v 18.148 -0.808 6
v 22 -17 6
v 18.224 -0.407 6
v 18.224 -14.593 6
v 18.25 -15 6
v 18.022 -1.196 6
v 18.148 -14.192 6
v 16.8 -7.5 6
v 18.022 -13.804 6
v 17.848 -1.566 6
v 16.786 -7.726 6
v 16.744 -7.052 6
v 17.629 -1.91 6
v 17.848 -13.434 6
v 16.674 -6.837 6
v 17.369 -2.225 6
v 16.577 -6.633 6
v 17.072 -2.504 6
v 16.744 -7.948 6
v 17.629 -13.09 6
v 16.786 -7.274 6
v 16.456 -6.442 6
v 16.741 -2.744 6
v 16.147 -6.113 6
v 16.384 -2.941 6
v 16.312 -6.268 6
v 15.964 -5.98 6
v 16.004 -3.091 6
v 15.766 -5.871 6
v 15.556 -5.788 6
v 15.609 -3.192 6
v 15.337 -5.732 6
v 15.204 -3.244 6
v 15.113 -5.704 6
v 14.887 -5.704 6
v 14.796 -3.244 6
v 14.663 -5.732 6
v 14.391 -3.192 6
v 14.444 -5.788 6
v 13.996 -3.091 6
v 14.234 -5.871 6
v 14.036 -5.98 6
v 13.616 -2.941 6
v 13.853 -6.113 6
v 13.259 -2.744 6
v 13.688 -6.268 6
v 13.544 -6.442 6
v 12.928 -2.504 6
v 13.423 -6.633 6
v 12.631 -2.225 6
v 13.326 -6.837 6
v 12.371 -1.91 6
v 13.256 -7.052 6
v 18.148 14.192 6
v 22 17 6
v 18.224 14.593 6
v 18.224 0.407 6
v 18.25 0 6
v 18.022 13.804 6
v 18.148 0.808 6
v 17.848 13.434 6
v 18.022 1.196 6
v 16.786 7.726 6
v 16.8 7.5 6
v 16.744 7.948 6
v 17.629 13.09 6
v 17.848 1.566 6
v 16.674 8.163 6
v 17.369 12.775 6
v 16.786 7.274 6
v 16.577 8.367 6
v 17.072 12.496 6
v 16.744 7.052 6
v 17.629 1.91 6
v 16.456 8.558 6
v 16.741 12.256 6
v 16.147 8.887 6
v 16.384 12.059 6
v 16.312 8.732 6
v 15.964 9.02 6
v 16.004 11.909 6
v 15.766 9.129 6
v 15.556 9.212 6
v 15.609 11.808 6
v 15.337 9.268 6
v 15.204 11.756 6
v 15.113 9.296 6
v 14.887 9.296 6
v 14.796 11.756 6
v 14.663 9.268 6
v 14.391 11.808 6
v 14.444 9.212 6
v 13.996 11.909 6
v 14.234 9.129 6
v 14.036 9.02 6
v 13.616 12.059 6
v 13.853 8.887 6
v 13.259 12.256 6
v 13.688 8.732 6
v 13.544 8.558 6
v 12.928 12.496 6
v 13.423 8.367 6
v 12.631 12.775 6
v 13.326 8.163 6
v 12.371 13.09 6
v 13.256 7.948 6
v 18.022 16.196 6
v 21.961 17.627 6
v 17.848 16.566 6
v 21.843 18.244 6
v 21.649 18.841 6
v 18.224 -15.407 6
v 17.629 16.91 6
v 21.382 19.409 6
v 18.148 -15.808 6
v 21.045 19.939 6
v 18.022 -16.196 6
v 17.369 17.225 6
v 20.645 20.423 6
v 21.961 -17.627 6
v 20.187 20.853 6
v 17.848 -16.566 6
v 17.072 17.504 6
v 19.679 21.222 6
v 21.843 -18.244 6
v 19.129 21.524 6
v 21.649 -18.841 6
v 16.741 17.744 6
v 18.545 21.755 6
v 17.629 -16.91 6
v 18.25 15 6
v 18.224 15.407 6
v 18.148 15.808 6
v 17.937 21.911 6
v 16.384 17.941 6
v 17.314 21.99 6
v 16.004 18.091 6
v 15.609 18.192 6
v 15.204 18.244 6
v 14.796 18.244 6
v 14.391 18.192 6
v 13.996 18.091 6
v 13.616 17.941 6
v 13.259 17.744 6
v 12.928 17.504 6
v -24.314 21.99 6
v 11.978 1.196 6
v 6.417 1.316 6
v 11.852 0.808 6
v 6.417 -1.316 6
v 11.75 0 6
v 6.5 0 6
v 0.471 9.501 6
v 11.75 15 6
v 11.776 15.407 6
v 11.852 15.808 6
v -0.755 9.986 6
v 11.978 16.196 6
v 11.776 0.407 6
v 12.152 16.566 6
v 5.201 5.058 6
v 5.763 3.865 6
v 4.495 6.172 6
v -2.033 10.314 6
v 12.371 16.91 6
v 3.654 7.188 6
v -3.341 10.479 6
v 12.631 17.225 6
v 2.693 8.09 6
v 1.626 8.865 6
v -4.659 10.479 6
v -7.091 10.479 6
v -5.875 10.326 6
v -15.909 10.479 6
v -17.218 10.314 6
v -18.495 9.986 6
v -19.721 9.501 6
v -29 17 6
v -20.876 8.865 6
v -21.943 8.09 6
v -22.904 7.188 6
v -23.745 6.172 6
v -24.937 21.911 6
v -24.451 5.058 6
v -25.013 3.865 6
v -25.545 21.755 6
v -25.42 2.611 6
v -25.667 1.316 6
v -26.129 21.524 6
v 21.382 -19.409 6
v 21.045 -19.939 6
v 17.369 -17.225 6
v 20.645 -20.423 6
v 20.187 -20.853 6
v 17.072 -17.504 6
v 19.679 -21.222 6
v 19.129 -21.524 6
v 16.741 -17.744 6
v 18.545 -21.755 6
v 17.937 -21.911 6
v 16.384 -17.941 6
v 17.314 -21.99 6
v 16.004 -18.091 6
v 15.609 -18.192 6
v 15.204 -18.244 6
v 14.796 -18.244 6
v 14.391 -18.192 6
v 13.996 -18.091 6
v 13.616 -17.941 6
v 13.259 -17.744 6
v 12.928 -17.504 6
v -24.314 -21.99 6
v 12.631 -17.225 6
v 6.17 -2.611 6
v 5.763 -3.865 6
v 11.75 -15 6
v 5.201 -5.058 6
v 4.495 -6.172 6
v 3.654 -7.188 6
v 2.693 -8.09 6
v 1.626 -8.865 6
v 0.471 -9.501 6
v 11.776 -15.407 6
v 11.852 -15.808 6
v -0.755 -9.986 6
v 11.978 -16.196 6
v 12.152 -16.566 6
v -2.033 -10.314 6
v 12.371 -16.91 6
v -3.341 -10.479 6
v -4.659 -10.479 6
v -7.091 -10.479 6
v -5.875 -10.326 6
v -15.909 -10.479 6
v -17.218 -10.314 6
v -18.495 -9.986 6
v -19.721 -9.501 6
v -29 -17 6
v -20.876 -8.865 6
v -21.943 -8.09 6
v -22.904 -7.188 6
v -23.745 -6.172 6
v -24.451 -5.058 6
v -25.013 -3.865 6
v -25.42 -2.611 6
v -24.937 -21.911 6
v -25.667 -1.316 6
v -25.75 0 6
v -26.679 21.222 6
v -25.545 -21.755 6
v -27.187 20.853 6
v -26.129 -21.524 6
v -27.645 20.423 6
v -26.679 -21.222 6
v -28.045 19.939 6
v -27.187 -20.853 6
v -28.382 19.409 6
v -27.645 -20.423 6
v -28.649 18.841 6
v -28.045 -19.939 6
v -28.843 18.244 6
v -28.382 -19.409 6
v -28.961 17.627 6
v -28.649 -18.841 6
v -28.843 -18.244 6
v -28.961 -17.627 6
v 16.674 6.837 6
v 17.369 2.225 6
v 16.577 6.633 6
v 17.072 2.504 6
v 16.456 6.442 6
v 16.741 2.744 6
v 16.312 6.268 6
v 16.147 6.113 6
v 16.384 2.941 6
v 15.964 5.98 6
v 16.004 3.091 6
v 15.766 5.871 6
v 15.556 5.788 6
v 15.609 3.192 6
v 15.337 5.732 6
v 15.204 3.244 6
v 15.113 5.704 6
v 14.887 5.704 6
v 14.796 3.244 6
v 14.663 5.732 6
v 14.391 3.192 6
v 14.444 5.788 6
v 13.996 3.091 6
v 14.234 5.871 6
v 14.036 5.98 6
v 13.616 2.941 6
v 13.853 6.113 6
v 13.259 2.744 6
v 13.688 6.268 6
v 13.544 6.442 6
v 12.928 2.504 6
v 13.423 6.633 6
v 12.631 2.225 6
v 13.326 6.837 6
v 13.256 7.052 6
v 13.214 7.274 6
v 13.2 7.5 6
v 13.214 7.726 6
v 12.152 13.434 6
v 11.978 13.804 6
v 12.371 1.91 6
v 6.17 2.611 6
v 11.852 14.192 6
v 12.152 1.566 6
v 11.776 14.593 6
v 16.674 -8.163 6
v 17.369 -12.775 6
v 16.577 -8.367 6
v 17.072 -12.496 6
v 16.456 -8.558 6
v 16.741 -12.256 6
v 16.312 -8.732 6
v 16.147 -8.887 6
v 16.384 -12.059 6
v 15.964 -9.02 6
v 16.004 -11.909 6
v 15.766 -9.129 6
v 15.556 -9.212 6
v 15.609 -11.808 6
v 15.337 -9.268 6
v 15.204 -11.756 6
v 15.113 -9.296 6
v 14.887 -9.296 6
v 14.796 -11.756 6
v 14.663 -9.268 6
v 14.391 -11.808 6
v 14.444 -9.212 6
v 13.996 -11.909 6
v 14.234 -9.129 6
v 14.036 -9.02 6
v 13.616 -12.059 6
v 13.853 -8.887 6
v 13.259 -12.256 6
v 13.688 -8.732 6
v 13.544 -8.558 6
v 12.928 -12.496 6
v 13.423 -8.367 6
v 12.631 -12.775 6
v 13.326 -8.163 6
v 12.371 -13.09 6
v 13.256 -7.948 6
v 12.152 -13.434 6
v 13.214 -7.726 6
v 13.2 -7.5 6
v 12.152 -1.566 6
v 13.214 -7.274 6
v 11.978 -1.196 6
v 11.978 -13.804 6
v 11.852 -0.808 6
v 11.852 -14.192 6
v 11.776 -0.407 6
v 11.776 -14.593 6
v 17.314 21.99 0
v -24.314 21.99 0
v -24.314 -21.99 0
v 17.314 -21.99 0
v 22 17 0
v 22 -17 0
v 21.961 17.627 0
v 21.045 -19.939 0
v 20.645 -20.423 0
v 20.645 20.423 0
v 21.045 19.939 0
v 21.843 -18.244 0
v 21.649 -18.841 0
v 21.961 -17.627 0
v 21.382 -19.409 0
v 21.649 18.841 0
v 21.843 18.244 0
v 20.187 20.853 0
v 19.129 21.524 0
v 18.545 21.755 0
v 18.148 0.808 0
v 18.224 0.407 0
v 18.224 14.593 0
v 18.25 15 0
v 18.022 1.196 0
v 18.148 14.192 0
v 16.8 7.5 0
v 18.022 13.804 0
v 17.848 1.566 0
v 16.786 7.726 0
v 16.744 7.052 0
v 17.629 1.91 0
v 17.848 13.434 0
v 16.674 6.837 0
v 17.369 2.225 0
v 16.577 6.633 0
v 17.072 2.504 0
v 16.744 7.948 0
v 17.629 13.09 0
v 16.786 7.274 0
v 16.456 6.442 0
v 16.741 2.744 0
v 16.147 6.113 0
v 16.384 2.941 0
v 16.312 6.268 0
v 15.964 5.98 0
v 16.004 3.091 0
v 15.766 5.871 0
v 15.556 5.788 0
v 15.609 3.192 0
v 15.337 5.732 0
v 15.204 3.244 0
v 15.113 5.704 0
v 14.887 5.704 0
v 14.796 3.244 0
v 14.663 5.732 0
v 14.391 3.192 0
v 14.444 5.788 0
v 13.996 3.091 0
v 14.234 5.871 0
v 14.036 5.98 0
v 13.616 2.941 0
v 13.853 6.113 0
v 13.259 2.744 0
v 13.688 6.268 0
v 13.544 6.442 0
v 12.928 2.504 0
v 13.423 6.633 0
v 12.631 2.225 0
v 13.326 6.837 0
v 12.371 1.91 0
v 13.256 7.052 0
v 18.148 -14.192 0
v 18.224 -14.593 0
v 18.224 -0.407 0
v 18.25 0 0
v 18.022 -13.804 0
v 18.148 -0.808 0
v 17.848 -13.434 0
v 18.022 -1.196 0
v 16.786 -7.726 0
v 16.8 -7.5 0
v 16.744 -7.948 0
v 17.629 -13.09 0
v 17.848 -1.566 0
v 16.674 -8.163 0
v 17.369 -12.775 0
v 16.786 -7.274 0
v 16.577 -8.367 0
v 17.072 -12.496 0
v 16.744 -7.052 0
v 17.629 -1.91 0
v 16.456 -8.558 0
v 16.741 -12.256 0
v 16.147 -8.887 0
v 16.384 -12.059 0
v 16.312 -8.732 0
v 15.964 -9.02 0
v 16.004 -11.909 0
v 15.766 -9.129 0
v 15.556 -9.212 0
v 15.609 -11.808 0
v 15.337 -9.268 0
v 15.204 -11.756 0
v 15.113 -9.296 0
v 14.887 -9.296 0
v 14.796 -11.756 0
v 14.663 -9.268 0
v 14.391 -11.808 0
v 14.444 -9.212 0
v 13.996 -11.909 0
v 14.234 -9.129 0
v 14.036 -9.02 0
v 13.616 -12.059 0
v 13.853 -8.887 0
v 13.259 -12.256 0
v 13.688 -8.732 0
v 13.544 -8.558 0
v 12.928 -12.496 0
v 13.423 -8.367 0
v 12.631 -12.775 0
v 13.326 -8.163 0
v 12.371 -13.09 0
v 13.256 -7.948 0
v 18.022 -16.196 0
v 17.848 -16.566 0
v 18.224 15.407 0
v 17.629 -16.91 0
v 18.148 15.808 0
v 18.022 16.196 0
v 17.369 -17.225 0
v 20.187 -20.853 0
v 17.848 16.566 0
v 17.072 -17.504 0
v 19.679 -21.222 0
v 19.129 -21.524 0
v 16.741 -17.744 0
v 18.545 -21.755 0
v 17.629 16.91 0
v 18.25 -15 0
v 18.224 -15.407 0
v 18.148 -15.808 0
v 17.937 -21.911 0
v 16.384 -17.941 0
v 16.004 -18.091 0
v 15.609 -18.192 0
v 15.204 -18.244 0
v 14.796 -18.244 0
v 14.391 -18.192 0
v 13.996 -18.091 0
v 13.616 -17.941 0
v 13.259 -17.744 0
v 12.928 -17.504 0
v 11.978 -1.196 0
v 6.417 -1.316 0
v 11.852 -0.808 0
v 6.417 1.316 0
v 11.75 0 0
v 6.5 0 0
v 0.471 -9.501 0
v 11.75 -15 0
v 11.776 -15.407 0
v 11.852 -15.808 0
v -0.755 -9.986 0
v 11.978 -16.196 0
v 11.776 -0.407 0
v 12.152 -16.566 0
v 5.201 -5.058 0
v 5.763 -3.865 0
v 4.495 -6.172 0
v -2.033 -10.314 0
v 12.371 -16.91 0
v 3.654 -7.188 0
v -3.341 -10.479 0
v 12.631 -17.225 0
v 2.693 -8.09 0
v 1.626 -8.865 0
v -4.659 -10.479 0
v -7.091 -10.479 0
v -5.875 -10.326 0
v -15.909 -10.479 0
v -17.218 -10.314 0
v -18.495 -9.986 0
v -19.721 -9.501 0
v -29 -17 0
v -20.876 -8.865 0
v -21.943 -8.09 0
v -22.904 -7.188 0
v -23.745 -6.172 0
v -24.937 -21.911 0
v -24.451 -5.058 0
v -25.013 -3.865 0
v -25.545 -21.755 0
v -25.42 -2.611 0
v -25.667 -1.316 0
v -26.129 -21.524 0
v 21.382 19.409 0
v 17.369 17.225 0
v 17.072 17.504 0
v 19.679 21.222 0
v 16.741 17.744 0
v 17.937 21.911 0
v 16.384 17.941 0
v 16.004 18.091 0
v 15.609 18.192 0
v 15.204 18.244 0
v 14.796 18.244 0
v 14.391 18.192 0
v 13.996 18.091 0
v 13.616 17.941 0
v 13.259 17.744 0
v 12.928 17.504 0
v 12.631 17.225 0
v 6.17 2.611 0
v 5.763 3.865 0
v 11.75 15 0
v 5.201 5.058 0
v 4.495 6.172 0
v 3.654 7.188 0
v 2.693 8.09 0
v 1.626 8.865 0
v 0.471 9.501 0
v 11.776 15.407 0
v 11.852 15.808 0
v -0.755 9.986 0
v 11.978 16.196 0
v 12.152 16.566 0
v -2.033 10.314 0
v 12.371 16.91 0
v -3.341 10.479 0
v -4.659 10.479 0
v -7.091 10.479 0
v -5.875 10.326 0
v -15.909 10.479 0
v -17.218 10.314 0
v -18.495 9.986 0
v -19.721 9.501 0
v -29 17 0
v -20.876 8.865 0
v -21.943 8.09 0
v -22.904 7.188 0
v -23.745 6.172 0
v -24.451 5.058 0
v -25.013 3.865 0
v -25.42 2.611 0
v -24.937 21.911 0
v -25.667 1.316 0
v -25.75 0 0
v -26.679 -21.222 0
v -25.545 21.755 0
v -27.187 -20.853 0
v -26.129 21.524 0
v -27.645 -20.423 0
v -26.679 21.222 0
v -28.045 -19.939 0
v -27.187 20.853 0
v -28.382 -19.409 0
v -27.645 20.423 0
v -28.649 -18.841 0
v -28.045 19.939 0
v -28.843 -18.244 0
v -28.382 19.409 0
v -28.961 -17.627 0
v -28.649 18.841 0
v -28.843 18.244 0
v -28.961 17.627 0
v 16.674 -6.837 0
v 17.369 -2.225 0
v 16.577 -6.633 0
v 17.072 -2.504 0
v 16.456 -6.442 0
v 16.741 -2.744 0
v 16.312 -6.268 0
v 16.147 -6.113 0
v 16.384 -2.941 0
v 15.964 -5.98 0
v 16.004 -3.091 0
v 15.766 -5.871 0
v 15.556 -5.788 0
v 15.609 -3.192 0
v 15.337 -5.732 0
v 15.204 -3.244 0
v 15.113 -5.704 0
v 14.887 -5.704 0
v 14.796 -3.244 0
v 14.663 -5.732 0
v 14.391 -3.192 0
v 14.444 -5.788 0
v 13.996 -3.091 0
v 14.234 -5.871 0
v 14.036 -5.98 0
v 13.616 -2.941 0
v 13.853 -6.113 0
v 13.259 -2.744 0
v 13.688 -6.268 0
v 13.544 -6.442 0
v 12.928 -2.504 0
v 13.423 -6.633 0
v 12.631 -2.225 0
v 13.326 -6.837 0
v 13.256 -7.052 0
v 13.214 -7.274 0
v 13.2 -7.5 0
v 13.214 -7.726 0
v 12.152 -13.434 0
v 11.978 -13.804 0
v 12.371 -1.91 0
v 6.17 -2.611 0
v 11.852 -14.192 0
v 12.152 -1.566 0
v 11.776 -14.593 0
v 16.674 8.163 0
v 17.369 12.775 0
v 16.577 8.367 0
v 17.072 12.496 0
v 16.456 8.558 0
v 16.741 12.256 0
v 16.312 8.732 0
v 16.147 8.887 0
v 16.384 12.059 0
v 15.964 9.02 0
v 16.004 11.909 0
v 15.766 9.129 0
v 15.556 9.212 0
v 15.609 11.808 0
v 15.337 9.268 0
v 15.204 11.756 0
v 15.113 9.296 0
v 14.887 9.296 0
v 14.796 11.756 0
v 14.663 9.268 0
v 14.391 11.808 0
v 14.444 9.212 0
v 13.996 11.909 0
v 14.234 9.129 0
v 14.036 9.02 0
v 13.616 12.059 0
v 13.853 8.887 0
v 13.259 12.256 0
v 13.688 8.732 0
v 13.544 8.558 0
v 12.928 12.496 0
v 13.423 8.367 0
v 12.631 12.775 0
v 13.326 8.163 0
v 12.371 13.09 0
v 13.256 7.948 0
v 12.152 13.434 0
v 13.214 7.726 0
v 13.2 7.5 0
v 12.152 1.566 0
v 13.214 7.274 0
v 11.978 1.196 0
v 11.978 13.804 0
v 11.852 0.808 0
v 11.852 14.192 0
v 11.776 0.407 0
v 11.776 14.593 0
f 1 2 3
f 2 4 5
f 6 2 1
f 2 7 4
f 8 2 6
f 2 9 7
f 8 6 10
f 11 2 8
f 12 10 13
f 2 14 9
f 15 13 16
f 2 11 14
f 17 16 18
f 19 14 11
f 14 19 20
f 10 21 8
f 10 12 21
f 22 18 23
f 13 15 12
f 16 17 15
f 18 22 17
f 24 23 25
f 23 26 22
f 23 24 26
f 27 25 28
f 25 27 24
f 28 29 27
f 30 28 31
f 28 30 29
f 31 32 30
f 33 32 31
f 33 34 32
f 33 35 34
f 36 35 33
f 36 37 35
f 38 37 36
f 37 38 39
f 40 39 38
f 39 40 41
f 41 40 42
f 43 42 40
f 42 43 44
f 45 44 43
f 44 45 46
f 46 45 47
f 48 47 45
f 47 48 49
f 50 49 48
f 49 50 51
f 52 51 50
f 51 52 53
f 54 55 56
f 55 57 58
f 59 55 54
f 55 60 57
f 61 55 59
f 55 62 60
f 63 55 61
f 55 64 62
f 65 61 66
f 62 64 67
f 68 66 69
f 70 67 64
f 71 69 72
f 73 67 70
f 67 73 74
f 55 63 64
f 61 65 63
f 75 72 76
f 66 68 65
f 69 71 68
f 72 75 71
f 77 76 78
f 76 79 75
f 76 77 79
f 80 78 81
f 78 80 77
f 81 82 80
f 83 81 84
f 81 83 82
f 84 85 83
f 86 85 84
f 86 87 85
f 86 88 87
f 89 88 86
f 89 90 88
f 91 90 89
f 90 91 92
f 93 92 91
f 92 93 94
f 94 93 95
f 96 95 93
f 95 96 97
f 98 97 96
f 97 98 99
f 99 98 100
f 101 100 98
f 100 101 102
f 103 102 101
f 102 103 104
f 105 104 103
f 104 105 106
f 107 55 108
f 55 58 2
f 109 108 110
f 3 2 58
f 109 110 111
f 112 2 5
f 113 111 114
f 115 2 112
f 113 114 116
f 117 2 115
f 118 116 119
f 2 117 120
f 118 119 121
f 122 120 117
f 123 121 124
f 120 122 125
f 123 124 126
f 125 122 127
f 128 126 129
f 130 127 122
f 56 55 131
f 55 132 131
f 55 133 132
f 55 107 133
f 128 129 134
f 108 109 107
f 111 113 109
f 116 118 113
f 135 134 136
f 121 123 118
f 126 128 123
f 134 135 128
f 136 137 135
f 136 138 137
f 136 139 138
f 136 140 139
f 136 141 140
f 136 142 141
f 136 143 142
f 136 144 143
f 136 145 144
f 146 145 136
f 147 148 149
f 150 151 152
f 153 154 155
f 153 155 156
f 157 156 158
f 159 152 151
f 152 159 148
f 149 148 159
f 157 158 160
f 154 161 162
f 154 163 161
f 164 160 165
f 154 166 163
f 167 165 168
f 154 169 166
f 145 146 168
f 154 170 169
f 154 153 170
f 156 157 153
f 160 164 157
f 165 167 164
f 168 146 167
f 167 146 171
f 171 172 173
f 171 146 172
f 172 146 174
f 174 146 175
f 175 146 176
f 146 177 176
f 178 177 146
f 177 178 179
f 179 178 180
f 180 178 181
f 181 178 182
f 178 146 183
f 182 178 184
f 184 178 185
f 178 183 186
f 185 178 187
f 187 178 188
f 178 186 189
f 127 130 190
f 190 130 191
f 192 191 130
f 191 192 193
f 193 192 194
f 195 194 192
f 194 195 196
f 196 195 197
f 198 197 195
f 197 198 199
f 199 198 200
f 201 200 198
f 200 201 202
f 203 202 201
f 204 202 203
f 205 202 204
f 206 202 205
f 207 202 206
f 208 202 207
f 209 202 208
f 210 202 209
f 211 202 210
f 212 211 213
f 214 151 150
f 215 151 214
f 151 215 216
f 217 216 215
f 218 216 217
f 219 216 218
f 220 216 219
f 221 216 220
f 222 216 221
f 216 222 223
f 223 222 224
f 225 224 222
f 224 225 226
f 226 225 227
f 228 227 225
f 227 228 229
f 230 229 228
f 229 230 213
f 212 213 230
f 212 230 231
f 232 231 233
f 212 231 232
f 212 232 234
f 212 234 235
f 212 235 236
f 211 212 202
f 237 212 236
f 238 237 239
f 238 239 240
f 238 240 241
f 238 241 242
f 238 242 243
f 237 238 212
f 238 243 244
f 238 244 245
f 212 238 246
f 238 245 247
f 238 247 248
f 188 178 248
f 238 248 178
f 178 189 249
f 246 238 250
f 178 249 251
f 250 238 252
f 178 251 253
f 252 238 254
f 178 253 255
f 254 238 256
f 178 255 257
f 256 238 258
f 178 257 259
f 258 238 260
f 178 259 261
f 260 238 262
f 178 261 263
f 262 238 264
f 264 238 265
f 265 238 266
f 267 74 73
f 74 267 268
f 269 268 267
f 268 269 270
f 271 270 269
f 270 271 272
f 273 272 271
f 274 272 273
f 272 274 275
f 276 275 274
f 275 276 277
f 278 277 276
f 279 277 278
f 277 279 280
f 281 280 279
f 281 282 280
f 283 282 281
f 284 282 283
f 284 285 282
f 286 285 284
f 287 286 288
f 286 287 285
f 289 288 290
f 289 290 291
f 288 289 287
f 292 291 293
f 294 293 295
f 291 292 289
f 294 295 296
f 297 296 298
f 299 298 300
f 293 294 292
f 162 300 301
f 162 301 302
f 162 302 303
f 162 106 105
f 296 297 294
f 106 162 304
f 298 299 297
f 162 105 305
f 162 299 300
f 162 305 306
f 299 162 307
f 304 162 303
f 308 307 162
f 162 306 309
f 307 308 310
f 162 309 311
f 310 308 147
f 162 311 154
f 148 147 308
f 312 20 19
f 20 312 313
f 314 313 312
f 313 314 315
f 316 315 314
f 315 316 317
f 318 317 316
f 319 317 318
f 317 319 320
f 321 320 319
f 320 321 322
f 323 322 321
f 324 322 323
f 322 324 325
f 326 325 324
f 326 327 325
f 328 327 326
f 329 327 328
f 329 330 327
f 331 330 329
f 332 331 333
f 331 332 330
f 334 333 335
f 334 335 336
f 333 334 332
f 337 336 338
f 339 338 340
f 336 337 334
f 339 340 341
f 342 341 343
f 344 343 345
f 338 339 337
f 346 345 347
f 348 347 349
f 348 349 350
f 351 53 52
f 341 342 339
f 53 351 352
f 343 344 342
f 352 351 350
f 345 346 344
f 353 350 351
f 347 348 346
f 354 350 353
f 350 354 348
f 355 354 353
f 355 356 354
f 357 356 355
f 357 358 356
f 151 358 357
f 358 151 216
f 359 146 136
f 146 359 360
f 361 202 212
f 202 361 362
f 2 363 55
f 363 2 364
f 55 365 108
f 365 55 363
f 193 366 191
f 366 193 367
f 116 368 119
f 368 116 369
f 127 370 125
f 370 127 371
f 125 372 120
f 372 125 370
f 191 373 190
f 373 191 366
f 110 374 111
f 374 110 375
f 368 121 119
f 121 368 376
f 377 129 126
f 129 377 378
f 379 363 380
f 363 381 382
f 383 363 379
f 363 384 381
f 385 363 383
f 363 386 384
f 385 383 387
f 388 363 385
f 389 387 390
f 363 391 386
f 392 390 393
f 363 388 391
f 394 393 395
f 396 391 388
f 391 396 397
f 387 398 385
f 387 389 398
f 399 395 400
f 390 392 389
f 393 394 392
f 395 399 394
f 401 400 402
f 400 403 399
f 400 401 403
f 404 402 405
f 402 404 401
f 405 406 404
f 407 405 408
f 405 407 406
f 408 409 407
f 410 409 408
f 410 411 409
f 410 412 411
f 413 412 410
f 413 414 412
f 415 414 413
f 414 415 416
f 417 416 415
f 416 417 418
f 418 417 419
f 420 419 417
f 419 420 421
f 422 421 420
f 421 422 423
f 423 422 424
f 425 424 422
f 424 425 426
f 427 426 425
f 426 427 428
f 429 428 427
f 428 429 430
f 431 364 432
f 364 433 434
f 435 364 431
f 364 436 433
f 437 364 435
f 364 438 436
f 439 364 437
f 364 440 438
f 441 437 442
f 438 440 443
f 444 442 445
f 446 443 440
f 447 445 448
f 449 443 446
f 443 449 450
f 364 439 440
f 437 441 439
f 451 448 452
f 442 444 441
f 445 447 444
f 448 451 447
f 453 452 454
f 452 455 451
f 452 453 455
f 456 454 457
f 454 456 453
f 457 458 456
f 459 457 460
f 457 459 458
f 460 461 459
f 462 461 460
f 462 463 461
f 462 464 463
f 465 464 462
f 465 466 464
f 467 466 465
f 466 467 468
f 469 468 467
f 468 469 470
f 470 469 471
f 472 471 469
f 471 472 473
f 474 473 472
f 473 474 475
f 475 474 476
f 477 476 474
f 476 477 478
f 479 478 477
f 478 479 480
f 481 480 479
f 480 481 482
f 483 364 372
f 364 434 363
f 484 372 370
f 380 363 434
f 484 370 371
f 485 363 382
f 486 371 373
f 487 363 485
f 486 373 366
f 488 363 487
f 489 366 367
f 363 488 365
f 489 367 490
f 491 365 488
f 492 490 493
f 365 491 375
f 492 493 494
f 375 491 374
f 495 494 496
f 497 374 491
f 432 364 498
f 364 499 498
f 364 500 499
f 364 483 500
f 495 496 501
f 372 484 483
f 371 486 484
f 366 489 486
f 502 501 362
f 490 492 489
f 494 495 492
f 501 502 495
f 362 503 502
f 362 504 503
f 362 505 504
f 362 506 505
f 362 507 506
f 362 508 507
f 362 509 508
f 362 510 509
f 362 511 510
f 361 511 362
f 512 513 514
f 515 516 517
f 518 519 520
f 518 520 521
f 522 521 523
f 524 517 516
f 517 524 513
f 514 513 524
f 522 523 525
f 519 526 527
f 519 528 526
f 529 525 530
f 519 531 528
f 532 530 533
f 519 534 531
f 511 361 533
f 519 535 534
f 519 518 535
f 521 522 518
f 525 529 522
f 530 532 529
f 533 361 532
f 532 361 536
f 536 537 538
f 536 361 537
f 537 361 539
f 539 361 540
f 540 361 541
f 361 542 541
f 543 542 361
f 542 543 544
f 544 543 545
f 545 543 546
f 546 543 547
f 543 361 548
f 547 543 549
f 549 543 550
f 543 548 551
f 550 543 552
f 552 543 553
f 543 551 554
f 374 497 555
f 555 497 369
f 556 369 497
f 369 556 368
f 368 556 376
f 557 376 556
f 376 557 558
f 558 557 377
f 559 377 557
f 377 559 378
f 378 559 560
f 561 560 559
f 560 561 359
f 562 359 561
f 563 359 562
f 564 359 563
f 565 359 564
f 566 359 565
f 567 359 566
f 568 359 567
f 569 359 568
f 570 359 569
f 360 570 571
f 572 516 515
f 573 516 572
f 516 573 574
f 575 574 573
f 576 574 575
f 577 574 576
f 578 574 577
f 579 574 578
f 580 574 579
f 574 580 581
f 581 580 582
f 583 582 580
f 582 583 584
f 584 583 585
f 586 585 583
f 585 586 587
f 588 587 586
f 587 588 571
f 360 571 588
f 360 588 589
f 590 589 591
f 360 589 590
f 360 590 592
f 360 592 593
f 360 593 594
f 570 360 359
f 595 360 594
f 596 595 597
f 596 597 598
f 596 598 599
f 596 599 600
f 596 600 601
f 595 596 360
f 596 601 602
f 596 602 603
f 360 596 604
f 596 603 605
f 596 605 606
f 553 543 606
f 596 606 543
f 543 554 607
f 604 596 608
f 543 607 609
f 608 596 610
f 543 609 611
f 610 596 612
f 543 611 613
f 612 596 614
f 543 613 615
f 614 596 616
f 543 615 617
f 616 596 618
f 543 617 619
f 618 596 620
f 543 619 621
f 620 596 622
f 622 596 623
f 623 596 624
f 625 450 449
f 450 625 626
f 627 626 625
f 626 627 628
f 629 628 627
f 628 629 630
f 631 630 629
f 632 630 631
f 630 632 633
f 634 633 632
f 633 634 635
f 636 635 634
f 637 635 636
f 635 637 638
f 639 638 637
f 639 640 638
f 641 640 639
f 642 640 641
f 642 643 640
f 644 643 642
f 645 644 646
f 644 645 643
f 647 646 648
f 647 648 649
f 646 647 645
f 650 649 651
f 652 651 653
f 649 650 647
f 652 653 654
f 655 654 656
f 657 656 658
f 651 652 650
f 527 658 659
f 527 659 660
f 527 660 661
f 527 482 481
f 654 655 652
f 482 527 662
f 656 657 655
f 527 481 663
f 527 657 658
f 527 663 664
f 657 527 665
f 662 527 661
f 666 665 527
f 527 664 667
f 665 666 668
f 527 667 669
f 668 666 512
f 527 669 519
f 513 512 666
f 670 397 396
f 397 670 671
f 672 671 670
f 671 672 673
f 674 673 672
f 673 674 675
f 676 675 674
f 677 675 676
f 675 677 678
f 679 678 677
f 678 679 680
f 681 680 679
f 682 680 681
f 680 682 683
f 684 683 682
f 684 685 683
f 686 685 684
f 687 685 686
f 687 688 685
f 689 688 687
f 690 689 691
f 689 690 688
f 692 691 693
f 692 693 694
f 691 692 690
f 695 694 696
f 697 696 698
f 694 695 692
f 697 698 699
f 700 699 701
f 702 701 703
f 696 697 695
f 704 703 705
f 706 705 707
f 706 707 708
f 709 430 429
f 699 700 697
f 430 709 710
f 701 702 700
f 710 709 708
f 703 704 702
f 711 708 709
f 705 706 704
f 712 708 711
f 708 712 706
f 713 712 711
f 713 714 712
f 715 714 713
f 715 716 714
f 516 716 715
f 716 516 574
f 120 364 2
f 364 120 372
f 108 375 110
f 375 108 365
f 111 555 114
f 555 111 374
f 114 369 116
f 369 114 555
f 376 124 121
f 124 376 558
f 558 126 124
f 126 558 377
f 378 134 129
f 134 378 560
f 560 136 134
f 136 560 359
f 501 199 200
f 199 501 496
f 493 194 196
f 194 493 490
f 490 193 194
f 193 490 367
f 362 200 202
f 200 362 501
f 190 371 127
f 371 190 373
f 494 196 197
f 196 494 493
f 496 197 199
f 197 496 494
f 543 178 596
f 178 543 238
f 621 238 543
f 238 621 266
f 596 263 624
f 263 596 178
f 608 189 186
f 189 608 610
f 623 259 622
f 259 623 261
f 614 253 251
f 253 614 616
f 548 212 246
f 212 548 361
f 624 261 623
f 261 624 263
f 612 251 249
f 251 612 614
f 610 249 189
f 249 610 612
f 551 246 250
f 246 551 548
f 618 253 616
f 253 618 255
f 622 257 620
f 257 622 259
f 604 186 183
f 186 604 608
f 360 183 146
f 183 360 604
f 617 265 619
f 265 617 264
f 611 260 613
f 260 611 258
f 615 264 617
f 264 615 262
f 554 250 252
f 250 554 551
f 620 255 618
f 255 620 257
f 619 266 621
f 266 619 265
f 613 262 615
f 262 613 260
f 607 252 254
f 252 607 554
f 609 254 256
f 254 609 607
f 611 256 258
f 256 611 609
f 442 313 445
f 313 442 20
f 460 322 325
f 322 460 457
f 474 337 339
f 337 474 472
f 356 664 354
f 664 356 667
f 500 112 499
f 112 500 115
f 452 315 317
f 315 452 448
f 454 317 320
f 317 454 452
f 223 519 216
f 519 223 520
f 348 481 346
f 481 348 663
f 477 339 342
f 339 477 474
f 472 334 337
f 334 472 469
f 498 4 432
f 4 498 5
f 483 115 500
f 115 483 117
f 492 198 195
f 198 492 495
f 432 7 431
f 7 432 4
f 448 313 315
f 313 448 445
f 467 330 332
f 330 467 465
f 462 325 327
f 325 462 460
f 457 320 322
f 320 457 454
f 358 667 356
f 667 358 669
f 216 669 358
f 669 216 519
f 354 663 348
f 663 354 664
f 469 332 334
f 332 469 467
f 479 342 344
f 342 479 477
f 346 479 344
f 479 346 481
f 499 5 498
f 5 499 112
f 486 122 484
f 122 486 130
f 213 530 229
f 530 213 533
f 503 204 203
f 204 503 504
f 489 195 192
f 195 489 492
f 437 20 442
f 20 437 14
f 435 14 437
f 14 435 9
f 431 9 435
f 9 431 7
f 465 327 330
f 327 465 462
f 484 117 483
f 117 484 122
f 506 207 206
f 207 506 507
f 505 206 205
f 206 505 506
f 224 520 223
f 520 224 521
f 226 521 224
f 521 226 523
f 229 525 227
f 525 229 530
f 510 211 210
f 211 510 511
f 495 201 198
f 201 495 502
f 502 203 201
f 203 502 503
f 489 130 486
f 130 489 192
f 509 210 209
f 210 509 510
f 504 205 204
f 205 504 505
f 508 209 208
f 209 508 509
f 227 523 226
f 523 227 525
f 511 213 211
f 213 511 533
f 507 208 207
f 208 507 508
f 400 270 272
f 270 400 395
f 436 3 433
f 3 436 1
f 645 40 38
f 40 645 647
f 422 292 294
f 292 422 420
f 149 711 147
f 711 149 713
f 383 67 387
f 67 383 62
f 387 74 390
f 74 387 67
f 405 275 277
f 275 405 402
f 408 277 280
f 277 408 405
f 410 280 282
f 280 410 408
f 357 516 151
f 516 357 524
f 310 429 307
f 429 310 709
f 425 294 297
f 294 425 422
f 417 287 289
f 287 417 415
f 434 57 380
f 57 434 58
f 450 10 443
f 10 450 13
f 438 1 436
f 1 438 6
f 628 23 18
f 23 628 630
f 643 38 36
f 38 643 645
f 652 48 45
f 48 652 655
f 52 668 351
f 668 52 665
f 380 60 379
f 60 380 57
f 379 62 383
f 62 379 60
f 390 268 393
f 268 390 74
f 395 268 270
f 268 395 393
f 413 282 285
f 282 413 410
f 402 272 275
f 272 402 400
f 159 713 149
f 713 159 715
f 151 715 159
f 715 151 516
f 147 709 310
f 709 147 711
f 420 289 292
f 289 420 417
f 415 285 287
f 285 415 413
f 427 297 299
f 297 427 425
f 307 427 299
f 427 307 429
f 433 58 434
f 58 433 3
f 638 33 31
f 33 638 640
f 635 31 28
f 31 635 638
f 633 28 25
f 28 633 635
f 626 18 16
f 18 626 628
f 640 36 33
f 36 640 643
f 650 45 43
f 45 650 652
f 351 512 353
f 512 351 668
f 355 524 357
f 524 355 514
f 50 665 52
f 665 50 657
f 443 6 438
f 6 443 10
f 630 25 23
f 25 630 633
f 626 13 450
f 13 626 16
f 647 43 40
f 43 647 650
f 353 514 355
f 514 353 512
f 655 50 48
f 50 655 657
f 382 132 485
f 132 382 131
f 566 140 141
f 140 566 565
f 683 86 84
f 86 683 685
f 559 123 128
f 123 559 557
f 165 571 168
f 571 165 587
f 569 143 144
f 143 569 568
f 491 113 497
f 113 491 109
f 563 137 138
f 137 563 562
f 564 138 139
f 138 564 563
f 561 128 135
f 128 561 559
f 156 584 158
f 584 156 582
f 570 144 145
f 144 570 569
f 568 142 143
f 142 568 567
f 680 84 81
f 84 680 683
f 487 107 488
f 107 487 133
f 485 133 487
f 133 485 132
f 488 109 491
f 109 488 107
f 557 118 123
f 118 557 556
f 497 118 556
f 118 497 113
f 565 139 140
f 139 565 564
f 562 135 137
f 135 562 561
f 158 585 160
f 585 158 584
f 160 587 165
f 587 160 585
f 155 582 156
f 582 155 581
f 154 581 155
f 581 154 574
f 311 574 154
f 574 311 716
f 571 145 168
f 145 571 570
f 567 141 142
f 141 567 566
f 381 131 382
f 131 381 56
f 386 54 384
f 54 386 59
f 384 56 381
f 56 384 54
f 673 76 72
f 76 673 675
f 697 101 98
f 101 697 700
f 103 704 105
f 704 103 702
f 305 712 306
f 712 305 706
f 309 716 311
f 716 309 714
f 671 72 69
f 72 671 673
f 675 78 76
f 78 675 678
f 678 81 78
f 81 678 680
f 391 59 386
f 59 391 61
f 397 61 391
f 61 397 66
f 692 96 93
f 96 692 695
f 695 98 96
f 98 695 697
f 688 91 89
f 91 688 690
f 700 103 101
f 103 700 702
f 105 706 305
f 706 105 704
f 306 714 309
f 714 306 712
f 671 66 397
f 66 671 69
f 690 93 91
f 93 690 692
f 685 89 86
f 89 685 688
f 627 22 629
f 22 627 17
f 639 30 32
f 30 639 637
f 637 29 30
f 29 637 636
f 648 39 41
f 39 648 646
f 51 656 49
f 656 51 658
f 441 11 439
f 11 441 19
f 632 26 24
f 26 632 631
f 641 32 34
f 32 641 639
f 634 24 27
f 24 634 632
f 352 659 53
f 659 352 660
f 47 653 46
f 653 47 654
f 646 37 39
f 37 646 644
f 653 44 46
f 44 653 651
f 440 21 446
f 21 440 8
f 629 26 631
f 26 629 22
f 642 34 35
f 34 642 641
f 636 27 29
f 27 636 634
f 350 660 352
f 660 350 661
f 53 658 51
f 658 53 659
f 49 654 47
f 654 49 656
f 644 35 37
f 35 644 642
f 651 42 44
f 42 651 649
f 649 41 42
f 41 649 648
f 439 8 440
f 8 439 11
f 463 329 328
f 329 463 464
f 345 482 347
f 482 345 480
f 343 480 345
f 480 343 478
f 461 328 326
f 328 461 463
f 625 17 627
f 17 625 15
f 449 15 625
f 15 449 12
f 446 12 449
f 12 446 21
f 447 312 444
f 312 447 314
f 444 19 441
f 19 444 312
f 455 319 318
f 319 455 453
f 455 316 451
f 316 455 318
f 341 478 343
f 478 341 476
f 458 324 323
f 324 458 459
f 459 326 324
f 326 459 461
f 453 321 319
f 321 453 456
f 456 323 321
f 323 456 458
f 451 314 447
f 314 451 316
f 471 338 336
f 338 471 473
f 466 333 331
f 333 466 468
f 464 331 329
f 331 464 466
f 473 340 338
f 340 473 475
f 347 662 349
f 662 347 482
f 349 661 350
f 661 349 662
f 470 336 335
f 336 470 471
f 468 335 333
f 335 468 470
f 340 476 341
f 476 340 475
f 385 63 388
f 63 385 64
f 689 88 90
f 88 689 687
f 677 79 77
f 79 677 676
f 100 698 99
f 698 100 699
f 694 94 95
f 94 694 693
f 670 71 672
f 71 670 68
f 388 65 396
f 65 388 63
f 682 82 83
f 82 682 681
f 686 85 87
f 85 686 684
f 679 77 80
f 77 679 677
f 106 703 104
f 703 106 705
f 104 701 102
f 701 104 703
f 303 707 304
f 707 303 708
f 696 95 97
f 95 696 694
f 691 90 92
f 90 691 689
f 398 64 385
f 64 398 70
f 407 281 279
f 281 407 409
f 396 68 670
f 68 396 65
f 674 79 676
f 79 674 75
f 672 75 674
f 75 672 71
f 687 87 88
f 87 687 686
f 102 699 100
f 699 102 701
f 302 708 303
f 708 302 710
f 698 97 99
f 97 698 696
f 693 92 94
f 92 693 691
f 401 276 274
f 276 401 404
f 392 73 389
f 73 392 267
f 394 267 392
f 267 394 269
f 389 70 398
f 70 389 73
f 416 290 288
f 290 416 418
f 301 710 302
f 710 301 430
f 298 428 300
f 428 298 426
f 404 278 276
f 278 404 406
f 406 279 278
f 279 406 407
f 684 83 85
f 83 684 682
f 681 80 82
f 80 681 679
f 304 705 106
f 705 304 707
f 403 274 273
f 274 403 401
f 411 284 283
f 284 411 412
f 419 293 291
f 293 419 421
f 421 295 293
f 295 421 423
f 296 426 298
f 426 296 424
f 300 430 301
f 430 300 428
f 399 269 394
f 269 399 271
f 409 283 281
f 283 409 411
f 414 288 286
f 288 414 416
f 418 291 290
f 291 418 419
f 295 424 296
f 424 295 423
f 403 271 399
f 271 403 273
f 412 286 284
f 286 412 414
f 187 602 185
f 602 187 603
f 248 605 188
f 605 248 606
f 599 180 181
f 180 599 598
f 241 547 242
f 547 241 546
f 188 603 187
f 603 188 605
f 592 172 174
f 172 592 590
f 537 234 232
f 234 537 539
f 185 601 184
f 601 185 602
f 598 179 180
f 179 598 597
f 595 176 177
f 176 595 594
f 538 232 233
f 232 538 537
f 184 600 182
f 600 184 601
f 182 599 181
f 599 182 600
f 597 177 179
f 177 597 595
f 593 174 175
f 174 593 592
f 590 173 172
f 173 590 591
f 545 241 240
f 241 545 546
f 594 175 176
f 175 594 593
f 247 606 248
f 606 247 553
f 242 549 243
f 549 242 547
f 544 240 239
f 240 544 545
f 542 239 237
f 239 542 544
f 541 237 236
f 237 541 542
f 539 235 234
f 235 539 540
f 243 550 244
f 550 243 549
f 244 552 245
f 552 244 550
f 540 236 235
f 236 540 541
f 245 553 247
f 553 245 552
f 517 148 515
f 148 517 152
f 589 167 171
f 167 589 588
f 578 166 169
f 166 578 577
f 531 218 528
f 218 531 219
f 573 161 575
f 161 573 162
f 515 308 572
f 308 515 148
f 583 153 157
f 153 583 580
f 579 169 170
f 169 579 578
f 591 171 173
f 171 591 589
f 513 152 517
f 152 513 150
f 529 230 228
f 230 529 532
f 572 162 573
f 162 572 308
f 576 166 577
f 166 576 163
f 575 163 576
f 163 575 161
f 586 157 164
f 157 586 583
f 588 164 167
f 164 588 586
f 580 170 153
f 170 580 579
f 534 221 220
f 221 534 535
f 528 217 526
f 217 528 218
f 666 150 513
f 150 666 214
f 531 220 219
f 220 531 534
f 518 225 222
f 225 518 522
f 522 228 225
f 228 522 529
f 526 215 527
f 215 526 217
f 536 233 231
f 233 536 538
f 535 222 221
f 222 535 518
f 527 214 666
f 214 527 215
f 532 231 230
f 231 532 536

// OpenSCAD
$fn = 50;


difference() {
	union() {
		hull() {
			translate(v = [-17.0000000000, 17.0000000000, 0]) {
				cylinder(h = 6, r = 5);
			}
			translate(v = [17.0000000000, 17.0000000000, 0]) {
				cylinder(h = 6, r = 5);
			}
			translate(v = [-17.0000000000, -17.0000000000, 0]) {
				cylinder(h = 6, r = 5);
			}
			translate(v = [17.0000000000, -17.0000000000, 0]) {
				cylinder(h = 6, r = 5);
			}
		}
		translate(v = [-7.0000000000, 0, 0]) {
			hull() {
				translate(v = [-17.0000000000, 17.0000000000, 0]) {
					cylinder(h = 6, r = 5);
				}
				translate(v = [17.0000000000, 17.0000000000, 0]) {
					cylinder(h = 6, r = 5);
				}
				translate(v = [-17.0000000000, -17.0000000000, 0]) {
					cylinder(h = 6, r = 5);
				}
				translate(v = [17.0000000000, -17.0000000000, 0]) {
					cylinder(h = 6, r = 5);
				}
			}
		}
	}
	union() {
		translate(v = [15.0000000000, -15.0000000000, -100.0000000000]) {
			cylinder(h = 200, r = 3.2500000000);
		}
		translate(v = [15.0000000000, 0.0000000000, -100.0000000000]) {
			cylinder(h = 200, r = 3.2500000000);
		}
		translate(v = [15.0000000000, 15.0000000000, -100.0000000000]) {
			cylinder(h = 200, r = 3.2500000000);
		}
		translate(v = [15.0000000000, -15.0000000000, -100.0000000000]) {
			cylinder(h = 200, r = 3.2500000000);
		}
		translate(v = [15.0000000000, 0.0000000000, -100.0000000000]) {
			cylinder(h = 200, r = 3.2500000000);
		}
		translate(v = [15.0000000000, 15.0000000000, -100.0000000000]) {
			cylinder(h = 200, r = 3.2500000000);
		}
		translate(v = [15.0000000000, -15.0000000000, -100.0000000000]) {
			cylinder(h = 200, r = 1.8000000000);
		}
		translate(v = [15.0000000000, -7.5000000000, -100.0000000000]) {
			cylinder(h = 200, r = 1.8000000000);
		}
		translate(v = [15.0000000000, 0.0000000000, -100.0000000000]) {
			cylinder(h = 200, r = 1.8000000000);
		}
		translate(v = [15.0000000000, 7.5000000000, -100.0000000000]) {
			cylinder(h = 200, r = 1.8000000000);
		}
		translate(v = [15.0000000000, 15.0000000000, -100.0000000000]) {
			cylinder(h = 200, r = 1.8000000000);
		}
		translate(v = [15.0000000000, -15.0000000000, -100.0000000000]) {
			cylinder(h = 200, r = 1.8000000000);
		}
		translate(v = [15.0000000000, -7.5000000000, -100.0000000000]) {
			cylinder(h = 200, r = 1.8000000000);
		}
		translate(v = [15.0000000000, 0.0000000000, -100.0000000000]) {
			cylinder(h = 200, r = 1.8000000000);
		}
		translate(v = [15.0000000000, 7.5000000000, -100.0000000000]) {
			cylinder(h = 200, r = 1.8000000000);
		}
		translate(v = [15.0000000000, 15.0000000000, -100.0000000000]) {
			cylinder(h = 200, r = 1.8000000000);
		}
		translate(v = [15.0000000000, -15.0000000000, -100.0000000000]) {
			cylinder(h = 200, r = 1.8000000000);
		}
		translate(v = [15.0000000000, -7.5000000000, -100.0000000000]) {
			cylinder(h = 200, r = 1.8000000000);
		}
		translate(v = [15.0000000000, 0.0000000000, -100.0000000000]) {
			cylinder(h = 200, r = 1.8000000000);
		}
		translate(v = [15.0000000000, 7.5000000000, -100.0000000000]) {
			cylinder(h = 200, r = 1.8000000000);
		}
		translate(v = [15.0000000000, 15.0000000000, -100.0000000000]) {
			cylinder(h = 200, r = 1.8000000000);
		}
		translate(v = [-11.5000000000, 0, 0]) {
			hull() {
				translate(v = [-3.7500000000, 0.0000000000, 0]) {
					cylinder(h = 6, r = 10.5000000000);
				}
				translate(v = [3.7500000000, 0.0000000000, 0]) {
					cylinder(h = 6, r = 10.5000000000);
				}
				translate(v = [-3.7500000000, -0.0000000000, 0]) {
					cylinder(h = 6, r = 10.5000000000);
				}
				translate(v = [3.7500000000, -0.0000000000, 0]) {
					cylinder(h = 6, r = 10.5000000000);
				}
			}
		}
		translate(v = [-4.0000000000, 0, 0.0000000000]) {
			cylinder(h = 6, r = 10.5000000000);
		}
	}
}
